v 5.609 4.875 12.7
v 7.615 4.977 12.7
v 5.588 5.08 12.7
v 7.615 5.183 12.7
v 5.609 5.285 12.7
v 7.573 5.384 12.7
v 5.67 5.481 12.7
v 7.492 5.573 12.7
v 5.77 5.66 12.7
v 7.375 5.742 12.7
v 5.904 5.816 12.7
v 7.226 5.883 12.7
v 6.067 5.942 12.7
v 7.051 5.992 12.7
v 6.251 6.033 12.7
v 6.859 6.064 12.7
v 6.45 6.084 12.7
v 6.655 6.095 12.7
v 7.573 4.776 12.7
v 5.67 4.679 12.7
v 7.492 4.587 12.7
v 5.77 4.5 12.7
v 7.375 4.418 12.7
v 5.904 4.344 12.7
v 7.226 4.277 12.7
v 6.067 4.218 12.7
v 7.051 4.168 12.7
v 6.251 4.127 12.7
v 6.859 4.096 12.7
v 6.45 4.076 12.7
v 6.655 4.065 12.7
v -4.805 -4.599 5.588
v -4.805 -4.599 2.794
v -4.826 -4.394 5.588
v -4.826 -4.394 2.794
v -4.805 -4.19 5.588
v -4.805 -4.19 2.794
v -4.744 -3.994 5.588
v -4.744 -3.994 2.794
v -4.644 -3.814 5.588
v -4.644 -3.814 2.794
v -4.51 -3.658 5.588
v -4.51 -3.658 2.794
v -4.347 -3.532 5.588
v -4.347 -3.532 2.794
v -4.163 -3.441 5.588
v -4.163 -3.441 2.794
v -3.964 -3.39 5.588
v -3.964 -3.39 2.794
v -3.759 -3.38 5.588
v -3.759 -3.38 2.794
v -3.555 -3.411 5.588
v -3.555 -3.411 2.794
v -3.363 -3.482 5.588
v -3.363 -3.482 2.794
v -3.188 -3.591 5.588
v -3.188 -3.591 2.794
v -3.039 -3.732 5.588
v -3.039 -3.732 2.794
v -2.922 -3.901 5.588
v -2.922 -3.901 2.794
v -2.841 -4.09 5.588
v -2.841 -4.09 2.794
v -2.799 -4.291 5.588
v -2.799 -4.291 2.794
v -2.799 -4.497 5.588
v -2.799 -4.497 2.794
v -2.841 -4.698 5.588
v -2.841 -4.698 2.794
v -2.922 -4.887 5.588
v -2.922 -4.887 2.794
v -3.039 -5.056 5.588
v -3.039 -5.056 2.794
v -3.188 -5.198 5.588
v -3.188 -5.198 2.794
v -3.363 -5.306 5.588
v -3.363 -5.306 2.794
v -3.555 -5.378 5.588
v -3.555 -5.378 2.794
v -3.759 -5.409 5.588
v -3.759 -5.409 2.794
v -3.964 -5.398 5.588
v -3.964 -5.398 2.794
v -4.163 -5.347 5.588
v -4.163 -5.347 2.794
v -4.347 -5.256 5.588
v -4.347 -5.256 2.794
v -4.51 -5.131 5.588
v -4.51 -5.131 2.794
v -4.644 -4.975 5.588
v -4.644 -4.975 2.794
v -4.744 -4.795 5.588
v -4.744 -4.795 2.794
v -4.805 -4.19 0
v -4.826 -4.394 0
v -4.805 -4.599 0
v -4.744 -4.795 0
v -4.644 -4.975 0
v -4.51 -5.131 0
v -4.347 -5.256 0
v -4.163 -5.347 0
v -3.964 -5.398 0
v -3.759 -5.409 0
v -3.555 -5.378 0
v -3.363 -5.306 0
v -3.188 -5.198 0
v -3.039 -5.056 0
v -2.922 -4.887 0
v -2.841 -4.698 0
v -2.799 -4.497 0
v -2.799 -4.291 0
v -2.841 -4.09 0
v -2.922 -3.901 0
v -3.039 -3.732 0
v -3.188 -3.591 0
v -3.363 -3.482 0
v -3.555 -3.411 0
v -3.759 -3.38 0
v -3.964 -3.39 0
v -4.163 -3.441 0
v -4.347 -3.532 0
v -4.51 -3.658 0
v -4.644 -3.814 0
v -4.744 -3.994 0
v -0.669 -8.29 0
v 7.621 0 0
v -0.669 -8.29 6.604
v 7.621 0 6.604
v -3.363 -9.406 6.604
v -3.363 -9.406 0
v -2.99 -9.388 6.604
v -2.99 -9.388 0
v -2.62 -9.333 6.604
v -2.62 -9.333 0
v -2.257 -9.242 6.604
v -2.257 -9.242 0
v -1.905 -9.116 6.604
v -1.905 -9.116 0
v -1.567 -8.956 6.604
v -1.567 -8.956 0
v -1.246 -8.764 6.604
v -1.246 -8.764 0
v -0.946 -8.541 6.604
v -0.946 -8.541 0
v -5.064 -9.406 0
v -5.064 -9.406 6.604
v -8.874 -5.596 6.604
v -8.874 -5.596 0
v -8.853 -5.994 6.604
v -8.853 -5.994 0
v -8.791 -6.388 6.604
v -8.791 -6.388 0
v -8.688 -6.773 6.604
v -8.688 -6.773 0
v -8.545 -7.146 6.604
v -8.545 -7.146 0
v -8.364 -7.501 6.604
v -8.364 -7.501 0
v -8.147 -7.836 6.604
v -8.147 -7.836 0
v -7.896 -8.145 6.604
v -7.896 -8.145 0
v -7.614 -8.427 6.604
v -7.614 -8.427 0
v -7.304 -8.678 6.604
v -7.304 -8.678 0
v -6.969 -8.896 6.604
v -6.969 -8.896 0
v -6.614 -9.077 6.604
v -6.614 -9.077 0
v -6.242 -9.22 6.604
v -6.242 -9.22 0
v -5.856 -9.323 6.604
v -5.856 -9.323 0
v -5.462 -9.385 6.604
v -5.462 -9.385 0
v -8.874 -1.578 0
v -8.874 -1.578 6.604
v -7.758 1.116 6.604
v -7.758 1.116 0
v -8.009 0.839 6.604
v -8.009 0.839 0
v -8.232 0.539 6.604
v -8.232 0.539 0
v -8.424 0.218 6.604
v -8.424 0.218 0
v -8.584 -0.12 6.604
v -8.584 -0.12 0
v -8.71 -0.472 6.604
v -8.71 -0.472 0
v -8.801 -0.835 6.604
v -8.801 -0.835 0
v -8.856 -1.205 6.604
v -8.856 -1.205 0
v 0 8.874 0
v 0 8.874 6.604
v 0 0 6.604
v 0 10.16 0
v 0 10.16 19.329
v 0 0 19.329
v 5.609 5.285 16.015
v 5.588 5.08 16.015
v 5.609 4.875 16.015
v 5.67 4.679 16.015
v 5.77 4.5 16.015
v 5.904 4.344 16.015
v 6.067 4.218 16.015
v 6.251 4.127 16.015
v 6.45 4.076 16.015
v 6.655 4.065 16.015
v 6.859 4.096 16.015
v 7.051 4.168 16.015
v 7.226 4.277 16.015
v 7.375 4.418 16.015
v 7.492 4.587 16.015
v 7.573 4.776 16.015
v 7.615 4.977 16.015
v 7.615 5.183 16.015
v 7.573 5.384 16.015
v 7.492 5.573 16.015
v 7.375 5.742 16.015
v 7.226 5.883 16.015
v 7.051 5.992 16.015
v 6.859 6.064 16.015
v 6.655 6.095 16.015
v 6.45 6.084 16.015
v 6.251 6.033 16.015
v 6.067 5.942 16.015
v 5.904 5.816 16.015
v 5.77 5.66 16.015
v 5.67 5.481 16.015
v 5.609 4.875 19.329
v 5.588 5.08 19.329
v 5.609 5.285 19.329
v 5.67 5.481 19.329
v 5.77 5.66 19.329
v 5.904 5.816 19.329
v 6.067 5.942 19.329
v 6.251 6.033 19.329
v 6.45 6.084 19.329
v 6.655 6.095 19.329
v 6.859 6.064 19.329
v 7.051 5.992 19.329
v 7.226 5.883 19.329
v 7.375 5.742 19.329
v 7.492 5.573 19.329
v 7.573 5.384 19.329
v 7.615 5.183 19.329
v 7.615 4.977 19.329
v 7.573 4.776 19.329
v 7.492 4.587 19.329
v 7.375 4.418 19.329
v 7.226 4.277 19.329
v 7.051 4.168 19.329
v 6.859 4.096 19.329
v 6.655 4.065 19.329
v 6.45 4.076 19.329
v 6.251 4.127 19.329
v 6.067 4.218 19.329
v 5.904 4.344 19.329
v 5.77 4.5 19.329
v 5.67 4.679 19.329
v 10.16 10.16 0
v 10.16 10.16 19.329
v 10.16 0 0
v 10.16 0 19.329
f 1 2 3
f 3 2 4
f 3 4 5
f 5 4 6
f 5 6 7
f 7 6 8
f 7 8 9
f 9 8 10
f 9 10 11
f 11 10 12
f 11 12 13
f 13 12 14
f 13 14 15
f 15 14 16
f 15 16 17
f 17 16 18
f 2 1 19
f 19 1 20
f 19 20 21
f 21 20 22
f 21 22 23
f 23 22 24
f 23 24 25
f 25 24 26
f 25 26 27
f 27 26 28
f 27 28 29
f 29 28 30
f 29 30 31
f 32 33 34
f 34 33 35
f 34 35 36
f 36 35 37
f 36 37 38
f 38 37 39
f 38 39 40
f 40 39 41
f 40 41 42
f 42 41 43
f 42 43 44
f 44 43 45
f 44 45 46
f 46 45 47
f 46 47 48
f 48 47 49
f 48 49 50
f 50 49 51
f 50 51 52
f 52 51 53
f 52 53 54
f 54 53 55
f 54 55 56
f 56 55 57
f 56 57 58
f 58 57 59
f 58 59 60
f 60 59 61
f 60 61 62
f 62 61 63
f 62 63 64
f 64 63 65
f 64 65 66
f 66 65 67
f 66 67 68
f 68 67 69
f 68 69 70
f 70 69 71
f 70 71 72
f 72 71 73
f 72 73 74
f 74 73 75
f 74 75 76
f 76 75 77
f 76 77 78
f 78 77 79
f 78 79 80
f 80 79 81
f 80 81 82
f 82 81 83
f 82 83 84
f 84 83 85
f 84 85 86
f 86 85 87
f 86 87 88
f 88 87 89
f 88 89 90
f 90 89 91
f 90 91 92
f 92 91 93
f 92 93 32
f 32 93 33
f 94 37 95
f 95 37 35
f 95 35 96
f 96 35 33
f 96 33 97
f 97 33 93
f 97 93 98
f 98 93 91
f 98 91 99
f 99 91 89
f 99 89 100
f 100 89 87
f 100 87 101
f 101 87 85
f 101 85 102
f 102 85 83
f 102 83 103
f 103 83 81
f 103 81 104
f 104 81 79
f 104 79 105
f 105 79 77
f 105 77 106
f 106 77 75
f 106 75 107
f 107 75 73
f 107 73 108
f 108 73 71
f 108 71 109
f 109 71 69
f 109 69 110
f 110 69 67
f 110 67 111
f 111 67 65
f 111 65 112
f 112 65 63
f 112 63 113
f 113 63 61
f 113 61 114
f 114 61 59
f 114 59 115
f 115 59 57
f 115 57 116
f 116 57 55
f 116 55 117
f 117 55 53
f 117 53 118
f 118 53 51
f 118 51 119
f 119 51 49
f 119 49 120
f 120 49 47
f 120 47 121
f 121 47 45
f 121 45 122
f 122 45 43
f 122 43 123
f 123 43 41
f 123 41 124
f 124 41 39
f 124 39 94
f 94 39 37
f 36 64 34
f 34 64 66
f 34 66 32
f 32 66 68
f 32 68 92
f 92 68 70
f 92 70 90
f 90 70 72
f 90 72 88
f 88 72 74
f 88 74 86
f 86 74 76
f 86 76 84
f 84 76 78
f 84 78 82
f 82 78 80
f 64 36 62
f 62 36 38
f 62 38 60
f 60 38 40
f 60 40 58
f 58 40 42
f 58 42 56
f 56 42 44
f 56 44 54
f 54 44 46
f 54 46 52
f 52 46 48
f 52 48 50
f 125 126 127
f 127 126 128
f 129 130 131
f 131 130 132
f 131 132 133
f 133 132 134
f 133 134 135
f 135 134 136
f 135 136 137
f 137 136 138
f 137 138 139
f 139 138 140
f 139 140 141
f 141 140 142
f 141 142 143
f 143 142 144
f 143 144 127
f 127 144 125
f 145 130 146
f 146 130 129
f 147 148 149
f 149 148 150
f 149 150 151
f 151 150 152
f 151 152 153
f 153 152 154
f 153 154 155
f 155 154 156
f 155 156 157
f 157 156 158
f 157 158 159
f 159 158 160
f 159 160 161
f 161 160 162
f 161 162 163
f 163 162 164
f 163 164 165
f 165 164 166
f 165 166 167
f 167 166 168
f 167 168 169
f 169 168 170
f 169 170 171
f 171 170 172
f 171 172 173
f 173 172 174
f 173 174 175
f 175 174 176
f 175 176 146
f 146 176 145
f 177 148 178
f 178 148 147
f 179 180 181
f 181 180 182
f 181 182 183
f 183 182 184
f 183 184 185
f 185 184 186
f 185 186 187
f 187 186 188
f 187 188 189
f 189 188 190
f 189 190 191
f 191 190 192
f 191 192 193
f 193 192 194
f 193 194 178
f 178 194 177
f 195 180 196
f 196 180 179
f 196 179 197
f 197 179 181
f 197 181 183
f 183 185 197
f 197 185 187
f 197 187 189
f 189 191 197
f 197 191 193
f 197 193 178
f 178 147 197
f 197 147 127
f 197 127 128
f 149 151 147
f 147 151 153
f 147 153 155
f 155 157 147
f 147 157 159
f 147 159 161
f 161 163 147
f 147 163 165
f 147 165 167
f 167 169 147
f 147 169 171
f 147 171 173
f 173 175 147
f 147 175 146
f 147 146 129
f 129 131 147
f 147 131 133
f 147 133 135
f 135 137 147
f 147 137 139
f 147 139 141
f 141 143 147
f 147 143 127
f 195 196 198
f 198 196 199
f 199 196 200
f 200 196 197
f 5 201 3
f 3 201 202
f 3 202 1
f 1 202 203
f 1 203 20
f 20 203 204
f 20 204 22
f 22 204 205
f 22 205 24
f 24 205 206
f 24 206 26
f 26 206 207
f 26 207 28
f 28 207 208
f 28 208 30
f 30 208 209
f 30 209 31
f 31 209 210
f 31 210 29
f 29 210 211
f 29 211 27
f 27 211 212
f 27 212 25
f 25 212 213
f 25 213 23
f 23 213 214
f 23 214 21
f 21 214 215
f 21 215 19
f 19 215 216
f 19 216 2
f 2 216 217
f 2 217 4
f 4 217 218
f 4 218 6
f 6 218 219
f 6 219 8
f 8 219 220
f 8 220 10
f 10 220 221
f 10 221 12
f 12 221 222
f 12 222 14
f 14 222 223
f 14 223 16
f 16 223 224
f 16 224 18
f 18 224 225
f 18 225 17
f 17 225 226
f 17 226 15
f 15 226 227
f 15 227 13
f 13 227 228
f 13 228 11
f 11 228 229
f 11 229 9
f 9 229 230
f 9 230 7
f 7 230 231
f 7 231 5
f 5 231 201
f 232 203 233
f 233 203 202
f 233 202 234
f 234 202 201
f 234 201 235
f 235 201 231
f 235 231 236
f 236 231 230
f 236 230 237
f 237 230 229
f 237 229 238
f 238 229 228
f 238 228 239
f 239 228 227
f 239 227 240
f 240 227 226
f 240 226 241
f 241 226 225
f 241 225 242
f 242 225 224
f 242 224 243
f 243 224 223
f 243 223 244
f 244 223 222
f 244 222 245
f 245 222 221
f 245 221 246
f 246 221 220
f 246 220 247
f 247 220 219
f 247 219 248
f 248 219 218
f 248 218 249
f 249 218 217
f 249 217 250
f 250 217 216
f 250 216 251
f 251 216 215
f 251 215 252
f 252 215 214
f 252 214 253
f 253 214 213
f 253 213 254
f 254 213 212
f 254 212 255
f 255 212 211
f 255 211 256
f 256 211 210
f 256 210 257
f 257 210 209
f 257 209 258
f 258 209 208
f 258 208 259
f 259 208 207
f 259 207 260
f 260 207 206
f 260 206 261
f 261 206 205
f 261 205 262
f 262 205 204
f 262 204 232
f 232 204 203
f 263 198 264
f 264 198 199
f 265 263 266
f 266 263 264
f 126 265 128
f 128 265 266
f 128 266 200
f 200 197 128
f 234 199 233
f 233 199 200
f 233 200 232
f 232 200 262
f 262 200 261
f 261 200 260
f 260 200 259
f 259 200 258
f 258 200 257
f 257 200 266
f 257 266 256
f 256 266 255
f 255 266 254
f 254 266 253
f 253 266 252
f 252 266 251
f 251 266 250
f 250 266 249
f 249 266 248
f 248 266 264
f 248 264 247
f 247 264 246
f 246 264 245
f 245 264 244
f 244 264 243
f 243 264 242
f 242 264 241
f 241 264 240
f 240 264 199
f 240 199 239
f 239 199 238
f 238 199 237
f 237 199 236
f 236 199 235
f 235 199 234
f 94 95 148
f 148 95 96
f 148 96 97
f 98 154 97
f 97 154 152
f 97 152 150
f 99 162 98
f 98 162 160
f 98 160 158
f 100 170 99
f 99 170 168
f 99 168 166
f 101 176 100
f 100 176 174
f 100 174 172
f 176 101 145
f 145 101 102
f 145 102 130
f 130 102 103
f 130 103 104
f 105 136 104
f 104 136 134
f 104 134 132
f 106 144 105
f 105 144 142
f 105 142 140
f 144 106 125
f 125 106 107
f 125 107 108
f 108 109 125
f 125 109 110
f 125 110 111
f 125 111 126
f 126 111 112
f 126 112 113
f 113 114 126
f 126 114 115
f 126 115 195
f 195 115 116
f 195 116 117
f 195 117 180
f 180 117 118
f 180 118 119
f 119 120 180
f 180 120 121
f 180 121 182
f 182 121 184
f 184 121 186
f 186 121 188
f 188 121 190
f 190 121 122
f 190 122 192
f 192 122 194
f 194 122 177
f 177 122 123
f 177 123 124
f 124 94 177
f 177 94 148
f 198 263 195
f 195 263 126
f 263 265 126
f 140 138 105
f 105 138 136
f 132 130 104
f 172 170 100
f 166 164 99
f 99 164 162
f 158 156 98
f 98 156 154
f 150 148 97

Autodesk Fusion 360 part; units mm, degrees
sketch "Sketch1" plane through (0, 0, 0) normal (0, 0, 1) x (1, 0, 0)
  line L0 (0, 0) -> (10.16, 0)
  line L1 (10.16, 0) -> (10.16, 10.16)
  line L2 (10.16, 10.16) -> (0, 10.16)
  line L3 (0, 10.16) -> (0, 0)
  circle A0 centre (6.604, 5.08) radius 1.016
  circle A1 centre (-3.81, -4.3942) radius 1.016
  line L4 (7.6211, 0) -> (-0.6691, -8.2902)
  line L5 (7.6211, 0) -> (20.9233, 0) construction
  line L6 (-3.3632, -9.4061) -> (-5.0642, -9.4061)
  line L7 (-8.8742, -5.5961) -> (-8.8742, -1.5782)
  line L8 (-7.7583, 1.1159) -> (0, 8.8742)
  arc A2 (-3.3632, -9.4061) -> (-0.6691, -8.2902) centre (-3.3632, -5.5961) ccw
  arc A3 (-8.8742, -5.5961) -> (-5.0642, -9.4061) centre (-5.0642, -5.5961) ccw
  arc A4 (-7.7583, 1.1159) -> (-8.8742, -1.5782) centre (-5.0642, -1.5782) ccw
  dimension "d1" = 10.16
  dimension "d2" = 10.16
  dimension "d3" = 2.032
  dimension "d4" = 3.556
  dimension "d5" = 5.08
  dimension "d6" = 2.032
  dimension "d7" = 4.3942
  dimension "d8" = 3.81
  dimension "d9" = 135
  dimension "d10" = 135
  dimension "d11" = 3.81
  dimension "d12" = 3.81
  dimension "d13" = 3.81
extrude "Extrude1" add sketch "Sketch1" along normal blind 19.3294 contours L0 L1 L2 L3
extrude "Extrude2" add sketch "Sketch1" along normal blind 6.604 contours L0 L3 L4 L6 L7 L8 A2 A3 A4
extrude "Extrude3" add sketch "Sketch1" along normal blind 6.604 contours A1
extrude "Extrude4" cut sketch "Sketch1" along normal blind 5.588 contours A1
extrude "Extrude5" add sketch "Sketch1" along normal blind 12.7 contours A0
